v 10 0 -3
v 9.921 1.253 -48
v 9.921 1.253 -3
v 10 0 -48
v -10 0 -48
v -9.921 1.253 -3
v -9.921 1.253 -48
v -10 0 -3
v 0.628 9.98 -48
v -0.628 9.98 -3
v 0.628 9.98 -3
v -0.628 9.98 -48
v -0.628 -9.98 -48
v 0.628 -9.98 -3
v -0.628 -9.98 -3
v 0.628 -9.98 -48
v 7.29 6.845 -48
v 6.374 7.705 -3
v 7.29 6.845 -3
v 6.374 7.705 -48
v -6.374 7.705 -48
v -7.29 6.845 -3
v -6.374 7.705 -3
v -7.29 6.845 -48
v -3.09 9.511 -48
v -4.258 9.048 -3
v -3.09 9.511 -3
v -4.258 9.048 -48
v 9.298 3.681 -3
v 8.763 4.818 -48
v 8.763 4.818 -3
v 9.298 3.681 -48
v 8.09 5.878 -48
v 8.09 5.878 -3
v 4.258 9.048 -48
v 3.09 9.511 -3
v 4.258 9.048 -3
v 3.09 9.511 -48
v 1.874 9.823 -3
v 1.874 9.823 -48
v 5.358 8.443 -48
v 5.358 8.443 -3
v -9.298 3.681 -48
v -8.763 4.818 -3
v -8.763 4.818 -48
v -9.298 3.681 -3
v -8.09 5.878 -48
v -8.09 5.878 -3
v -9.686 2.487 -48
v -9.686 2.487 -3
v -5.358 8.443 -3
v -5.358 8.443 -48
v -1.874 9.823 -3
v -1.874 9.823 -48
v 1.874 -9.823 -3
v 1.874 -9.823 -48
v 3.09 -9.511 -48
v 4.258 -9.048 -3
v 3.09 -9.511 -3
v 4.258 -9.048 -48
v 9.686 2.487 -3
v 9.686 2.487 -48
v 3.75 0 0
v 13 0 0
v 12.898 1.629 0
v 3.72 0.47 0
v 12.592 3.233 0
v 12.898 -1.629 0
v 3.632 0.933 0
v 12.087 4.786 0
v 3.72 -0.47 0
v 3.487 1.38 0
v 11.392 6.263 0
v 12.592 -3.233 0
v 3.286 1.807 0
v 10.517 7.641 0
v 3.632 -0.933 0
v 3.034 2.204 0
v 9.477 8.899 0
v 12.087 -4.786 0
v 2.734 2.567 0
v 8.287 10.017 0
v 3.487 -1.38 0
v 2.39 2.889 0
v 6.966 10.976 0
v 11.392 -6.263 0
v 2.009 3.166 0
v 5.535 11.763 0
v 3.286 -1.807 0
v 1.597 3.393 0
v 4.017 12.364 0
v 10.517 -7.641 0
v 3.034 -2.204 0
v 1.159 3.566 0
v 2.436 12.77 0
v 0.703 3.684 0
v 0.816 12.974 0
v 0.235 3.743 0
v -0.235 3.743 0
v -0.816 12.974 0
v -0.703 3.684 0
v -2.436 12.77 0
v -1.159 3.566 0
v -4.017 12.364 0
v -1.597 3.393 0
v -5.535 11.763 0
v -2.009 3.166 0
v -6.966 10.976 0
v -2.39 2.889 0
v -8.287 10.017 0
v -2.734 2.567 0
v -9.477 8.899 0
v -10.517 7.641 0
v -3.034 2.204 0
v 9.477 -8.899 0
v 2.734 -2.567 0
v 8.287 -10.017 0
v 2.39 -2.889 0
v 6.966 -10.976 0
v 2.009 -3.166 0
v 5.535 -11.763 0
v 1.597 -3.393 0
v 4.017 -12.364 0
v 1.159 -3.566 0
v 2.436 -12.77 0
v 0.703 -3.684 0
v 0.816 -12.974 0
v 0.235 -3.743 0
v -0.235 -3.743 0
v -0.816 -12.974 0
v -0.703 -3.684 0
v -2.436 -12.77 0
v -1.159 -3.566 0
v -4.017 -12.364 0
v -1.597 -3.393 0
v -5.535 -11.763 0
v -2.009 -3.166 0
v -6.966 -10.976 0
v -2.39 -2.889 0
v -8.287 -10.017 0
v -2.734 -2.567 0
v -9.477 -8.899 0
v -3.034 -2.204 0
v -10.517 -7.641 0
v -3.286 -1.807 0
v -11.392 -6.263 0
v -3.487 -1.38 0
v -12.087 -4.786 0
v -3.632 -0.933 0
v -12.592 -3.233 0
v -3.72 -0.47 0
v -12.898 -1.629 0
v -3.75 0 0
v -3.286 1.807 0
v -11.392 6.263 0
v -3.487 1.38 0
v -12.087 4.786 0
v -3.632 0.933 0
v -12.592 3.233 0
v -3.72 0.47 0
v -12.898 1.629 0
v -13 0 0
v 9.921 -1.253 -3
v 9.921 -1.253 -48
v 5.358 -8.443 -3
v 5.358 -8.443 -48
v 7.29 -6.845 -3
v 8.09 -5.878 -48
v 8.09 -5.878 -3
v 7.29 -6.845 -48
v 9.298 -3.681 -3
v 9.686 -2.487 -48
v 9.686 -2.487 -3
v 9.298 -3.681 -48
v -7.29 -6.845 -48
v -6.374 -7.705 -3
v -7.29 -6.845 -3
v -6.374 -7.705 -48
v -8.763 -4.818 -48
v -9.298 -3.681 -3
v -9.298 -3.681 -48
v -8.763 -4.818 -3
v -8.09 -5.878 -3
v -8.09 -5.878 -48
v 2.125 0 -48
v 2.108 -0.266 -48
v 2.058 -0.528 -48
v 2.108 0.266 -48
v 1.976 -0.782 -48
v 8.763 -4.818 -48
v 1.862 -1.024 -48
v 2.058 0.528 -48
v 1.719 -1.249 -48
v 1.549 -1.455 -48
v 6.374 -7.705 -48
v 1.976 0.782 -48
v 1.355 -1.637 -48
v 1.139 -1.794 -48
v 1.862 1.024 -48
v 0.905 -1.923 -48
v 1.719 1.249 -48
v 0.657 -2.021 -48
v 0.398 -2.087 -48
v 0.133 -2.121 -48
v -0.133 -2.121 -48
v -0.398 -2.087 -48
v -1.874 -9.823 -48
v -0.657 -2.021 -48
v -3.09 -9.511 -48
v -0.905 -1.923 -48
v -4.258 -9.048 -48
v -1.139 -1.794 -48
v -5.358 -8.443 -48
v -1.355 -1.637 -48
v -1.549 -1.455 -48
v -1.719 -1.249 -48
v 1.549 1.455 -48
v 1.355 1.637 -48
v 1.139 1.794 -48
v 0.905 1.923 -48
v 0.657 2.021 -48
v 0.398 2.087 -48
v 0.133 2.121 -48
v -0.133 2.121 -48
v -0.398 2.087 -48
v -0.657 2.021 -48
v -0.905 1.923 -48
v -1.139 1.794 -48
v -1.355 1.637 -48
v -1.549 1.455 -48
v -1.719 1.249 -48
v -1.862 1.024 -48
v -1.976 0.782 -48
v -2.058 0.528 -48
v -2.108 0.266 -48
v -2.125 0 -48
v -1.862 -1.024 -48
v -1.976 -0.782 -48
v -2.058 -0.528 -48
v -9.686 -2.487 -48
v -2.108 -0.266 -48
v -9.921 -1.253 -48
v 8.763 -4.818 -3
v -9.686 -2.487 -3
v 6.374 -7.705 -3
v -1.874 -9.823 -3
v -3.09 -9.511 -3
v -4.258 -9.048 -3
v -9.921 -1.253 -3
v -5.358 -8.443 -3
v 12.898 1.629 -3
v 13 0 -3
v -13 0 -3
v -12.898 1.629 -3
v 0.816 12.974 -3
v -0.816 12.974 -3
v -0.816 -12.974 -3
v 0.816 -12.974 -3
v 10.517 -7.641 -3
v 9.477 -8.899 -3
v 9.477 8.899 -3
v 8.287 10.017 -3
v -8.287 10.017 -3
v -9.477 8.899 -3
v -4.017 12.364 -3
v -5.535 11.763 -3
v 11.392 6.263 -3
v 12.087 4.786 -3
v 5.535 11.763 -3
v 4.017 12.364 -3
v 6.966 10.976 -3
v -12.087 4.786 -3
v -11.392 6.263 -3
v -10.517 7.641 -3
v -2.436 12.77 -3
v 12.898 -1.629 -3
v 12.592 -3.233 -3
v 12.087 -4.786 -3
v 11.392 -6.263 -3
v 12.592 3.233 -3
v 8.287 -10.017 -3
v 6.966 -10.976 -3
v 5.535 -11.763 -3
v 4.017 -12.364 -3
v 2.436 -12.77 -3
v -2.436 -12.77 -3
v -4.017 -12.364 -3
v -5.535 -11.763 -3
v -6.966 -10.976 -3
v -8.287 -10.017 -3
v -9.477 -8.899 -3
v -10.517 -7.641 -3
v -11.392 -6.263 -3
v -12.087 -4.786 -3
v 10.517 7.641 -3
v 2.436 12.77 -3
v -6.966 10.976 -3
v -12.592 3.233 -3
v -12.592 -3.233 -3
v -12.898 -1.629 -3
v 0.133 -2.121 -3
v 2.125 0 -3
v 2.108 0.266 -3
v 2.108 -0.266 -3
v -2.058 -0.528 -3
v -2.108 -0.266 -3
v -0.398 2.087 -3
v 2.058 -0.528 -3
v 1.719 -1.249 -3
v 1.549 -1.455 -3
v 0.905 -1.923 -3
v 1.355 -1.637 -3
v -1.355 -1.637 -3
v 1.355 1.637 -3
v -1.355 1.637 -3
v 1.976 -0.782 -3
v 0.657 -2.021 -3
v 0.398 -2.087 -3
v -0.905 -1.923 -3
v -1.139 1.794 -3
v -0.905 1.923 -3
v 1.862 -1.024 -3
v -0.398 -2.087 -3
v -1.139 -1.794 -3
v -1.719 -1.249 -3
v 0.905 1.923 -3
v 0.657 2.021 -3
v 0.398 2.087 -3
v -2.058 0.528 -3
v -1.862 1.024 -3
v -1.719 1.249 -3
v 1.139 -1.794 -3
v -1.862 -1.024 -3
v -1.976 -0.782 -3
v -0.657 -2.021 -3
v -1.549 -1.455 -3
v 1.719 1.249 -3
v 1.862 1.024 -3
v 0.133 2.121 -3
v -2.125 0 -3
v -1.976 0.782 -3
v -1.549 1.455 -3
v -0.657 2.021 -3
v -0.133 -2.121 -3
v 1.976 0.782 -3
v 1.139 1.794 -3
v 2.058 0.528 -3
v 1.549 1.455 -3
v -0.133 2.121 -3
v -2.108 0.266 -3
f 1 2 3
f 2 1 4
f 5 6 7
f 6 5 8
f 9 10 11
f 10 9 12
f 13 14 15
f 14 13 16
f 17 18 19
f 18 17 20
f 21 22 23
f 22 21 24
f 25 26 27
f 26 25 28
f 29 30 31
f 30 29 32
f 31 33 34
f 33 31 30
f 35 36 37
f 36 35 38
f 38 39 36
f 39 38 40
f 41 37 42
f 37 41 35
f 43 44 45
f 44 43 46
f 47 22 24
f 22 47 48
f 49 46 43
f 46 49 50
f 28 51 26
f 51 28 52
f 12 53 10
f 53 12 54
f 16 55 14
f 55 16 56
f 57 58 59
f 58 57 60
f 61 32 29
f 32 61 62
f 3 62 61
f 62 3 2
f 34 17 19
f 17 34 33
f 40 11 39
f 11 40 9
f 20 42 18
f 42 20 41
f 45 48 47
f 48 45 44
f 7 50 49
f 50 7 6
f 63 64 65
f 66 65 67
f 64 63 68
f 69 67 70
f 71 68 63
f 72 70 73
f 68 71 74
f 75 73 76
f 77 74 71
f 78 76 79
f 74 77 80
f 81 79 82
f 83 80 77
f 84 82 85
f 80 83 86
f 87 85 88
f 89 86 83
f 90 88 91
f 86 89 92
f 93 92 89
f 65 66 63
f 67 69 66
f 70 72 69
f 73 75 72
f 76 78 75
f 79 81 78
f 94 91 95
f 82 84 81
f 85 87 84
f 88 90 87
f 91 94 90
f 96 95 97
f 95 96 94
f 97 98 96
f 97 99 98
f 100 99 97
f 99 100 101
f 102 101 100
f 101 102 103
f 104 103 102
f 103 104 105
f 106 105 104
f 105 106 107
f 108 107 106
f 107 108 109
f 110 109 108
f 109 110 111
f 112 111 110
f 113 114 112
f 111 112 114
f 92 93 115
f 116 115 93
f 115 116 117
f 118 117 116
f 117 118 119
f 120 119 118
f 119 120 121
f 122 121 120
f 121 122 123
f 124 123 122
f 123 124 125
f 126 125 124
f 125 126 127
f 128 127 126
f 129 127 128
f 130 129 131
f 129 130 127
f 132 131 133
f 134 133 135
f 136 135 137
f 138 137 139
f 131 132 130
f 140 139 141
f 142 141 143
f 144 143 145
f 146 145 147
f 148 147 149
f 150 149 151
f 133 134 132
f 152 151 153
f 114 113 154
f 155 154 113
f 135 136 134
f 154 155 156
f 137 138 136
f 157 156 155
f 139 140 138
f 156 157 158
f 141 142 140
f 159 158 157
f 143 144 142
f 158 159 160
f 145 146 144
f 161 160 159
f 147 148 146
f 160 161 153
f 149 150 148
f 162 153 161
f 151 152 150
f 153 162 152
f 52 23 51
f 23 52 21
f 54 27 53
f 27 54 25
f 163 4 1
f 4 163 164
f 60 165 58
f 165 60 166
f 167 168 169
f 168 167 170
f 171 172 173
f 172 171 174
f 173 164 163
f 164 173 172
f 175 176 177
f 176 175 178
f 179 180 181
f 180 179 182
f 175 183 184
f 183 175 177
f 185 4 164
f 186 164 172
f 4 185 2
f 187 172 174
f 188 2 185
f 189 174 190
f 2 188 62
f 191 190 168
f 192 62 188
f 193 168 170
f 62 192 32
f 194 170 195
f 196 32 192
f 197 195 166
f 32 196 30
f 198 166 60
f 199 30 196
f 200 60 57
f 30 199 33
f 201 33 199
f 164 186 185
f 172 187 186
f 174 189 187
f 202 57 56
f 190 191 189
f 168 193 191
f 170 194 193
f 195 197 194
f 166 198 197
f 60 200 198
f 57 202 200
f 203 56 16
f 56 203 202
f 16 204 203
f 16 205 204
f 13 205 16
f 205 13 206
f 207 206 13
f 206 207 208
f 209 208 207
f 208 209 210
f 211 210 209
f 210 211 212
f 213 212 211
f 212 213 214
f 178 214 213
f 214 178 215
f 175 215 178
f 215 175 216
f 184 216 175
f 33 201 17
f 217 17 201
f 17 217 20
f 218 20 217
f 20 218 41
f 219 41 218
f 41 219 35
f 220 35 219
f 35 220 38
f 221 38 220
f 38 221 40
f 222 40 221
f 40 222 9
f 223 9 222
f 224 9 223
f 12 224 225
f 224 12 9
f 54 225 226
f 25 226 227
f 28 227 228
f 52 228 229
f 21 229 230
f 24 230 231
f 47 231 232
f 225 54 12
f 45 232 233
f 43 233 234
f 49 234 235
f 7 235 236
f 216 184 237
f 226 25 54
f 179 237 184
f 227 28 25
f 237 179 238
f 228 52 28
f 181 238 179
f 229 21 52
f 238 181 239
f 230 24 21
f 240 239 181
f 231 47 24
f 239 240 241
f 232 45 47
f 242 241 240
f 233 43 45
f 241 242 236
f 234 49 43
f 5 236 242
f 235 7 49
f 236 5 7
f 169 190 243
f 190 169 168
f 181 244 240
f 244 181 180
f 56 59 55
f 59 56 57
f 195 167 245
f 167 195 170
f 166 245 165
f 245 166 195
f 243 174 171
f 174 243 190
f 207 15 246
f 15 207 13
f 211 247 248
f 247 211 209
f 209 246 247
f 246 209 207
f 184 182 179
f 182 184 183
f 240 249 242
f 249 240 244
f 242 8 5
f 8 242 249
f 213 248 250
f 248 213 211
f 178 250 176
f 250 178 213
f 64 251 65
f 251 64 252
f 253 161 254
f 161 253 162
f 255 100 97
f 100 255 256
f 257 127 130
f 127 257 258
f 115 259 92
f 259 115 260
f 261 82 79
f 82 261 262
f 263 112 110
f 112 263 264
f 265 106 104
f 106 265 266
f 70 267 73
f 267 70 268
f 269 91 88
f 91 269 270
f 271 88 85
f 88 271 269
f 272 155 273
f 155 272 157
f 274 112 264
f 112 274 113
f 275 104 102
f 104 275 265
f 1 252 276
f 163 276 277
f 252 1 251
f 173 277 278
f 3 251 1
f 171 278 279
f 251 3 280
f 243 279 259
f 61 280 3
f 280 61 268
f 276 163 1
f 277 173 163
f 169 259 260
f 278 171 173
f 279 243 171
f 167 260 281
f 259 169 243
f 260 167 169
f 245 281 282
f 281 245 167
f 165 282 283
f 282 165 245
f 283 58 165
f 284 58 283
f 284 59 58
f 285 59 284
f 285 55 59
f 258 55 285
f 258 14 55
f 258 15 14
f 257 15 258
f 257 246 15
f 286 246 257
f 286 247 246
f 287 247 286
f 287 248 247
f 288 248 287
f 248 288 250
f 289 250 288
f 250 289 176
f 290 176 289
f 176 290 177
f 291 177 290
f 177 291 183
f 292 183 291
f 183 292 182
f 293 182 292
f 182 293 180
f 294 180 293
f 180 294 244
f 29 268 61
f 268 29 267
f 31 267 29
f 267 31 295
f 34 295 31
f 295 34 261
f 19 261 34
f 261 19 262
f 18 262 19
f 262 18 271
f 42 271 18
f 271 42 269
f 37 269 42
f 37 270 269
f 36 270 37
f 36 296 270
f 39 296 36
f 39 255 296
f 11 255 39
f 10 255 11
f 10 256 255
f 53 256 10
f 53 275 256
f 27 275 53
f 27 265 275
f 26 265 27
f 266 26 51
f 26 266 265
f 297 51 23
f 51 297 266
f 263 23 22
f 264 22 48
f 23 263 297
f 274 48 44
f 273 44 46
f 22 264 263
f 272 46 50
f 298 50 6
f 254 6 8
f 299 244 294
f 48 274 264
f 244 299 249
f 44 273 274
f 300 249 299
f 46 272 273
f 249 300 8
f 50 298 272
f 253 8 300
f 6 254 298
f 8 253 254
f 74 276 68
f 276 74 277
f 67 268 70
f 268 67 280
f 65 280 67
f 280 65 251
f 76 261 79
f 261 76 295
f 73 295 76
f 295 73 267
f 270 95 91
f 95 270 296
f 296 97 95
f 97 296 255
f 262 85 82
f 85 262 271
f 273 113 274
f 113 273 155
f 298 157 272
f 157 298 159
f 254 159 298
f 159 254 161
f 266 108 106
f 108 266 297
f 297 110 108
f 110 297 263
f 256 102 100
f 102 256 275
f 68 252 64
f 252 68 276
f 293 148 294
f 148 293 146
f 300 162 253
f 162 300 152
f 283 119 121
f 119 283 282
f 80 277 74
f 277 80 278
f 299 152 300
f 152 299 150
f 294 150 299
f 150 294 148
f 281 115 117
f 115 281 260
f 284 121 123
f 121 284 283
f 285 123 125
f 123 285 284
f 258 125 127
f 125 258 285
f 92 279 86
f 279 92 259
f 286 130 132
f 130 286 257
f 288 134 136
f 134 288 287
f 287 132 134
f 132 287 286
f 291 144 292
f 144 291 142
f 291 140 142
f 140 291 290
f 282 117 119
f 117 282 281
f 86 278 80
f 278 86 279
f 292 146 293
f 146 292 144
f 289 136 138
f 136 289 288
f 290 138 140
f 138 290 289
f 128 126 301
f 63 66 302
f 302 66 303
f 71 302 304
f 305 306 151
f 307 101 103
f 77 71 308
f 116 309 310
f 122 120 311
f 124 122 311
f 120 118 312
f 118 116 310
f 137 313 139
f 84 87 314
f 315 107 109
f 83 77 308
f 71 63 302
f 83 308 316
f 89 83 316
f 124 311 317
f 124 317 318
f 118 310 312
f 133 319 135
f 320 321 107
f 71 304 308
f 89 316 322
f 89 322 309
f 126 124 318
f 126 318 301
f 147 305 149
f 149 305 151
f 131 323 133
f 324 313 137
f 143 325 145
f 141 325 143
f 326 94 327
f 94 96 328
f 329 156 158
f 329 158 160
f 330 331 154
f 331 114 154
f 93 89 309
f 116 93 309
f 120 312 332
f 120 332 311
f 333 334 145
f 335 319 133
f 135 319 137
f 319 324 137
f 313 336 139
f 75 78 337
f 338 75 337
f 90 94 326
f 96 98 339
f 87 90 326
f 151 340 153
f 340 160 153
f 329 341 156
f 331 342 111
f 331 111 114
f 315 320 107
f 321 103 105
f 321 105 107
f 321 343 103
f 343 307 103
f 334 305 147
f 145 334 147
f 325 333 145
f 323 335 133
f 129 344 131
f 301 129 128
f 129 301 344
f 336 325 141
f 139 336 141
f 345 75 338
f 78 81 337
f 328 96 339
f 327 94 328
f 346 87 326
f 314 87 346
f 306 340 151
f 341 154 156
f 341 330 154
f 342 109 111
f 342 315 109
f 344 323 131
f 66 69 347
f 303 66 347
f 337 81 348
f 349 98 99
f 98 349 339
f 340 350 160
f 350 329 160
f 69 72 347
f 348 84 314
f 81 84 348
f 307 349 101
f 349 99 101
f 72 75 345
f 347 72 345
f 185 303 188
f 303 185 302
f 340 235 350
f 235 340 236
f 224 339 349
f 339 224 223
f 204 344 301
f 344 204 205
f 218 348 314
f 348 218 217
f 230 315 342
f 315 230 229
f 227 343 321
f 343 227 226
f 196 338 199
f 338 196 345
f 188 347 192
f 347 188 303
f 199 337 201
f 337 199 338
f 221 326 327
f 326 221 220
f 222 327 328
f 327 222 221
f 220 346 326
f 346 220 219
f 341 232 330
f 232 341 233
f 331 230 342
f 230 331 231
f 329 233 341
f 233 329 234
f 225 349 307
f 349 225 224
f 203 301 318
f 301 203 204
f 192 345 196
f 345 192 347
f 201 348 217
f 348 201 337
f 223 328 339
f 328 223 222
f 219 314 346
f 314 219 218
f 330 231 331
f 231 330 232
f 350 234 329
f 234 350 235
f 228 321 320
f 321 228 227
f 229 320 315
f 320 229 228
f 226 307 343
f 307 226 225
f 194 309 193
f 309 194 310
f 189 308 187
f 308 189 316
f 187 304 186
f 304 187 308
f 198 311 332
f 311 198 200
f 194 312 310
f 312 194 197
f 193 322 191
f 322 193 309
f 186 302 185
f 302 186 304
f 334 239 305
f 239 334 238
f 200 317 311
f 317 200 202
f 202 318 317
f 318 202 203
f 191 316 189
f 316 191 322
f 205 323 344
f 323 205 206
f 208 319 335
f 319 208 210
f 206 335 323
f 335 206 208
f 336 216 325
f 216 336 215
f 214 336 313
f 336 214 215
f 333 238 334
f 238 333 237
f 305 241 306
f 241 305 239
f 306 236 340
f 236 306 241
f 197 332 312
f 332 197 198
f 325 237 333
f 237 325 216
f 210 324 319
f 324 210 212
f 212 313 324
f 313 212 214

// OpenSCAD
$fn = 50;


difference() {
	union() {
		translate(v = [0, 0, -48.0000000000]) {
			cylinder(h = 48, r = 10.0000000000);
		}
		translate(v = [0, 0, -3.0000000000]) {
			cylinder(h = 3, r = 13.0000000000);
		}
	}
	union() {
		translate(v = [0, 0, 0]) {
			rotate(a = [0, 0, 0]) {
				difference() {
					union() {
						#translate(v = [0, 0, -48.0000000000]) {
							cylinder(h = 48, r = 2.0000000000);
						}
						#translate(v = [0, 0, -3]) {
							cylinder(h = 3, r = 10.0000000000, r1 = 2.1250000000, r2 = 3.7500000000);
						}
						#translate(v = [0, 0, -48.0000000000]) {
							cylinder(h = 48, r = 2.1250000000);
						}
						#translate(v = [0, 0, -48.0000000000]) {
							cylinder(h = 48, r = 2.0000000000);
						}
					}
					union();
				}
			}
		}
	}
}
